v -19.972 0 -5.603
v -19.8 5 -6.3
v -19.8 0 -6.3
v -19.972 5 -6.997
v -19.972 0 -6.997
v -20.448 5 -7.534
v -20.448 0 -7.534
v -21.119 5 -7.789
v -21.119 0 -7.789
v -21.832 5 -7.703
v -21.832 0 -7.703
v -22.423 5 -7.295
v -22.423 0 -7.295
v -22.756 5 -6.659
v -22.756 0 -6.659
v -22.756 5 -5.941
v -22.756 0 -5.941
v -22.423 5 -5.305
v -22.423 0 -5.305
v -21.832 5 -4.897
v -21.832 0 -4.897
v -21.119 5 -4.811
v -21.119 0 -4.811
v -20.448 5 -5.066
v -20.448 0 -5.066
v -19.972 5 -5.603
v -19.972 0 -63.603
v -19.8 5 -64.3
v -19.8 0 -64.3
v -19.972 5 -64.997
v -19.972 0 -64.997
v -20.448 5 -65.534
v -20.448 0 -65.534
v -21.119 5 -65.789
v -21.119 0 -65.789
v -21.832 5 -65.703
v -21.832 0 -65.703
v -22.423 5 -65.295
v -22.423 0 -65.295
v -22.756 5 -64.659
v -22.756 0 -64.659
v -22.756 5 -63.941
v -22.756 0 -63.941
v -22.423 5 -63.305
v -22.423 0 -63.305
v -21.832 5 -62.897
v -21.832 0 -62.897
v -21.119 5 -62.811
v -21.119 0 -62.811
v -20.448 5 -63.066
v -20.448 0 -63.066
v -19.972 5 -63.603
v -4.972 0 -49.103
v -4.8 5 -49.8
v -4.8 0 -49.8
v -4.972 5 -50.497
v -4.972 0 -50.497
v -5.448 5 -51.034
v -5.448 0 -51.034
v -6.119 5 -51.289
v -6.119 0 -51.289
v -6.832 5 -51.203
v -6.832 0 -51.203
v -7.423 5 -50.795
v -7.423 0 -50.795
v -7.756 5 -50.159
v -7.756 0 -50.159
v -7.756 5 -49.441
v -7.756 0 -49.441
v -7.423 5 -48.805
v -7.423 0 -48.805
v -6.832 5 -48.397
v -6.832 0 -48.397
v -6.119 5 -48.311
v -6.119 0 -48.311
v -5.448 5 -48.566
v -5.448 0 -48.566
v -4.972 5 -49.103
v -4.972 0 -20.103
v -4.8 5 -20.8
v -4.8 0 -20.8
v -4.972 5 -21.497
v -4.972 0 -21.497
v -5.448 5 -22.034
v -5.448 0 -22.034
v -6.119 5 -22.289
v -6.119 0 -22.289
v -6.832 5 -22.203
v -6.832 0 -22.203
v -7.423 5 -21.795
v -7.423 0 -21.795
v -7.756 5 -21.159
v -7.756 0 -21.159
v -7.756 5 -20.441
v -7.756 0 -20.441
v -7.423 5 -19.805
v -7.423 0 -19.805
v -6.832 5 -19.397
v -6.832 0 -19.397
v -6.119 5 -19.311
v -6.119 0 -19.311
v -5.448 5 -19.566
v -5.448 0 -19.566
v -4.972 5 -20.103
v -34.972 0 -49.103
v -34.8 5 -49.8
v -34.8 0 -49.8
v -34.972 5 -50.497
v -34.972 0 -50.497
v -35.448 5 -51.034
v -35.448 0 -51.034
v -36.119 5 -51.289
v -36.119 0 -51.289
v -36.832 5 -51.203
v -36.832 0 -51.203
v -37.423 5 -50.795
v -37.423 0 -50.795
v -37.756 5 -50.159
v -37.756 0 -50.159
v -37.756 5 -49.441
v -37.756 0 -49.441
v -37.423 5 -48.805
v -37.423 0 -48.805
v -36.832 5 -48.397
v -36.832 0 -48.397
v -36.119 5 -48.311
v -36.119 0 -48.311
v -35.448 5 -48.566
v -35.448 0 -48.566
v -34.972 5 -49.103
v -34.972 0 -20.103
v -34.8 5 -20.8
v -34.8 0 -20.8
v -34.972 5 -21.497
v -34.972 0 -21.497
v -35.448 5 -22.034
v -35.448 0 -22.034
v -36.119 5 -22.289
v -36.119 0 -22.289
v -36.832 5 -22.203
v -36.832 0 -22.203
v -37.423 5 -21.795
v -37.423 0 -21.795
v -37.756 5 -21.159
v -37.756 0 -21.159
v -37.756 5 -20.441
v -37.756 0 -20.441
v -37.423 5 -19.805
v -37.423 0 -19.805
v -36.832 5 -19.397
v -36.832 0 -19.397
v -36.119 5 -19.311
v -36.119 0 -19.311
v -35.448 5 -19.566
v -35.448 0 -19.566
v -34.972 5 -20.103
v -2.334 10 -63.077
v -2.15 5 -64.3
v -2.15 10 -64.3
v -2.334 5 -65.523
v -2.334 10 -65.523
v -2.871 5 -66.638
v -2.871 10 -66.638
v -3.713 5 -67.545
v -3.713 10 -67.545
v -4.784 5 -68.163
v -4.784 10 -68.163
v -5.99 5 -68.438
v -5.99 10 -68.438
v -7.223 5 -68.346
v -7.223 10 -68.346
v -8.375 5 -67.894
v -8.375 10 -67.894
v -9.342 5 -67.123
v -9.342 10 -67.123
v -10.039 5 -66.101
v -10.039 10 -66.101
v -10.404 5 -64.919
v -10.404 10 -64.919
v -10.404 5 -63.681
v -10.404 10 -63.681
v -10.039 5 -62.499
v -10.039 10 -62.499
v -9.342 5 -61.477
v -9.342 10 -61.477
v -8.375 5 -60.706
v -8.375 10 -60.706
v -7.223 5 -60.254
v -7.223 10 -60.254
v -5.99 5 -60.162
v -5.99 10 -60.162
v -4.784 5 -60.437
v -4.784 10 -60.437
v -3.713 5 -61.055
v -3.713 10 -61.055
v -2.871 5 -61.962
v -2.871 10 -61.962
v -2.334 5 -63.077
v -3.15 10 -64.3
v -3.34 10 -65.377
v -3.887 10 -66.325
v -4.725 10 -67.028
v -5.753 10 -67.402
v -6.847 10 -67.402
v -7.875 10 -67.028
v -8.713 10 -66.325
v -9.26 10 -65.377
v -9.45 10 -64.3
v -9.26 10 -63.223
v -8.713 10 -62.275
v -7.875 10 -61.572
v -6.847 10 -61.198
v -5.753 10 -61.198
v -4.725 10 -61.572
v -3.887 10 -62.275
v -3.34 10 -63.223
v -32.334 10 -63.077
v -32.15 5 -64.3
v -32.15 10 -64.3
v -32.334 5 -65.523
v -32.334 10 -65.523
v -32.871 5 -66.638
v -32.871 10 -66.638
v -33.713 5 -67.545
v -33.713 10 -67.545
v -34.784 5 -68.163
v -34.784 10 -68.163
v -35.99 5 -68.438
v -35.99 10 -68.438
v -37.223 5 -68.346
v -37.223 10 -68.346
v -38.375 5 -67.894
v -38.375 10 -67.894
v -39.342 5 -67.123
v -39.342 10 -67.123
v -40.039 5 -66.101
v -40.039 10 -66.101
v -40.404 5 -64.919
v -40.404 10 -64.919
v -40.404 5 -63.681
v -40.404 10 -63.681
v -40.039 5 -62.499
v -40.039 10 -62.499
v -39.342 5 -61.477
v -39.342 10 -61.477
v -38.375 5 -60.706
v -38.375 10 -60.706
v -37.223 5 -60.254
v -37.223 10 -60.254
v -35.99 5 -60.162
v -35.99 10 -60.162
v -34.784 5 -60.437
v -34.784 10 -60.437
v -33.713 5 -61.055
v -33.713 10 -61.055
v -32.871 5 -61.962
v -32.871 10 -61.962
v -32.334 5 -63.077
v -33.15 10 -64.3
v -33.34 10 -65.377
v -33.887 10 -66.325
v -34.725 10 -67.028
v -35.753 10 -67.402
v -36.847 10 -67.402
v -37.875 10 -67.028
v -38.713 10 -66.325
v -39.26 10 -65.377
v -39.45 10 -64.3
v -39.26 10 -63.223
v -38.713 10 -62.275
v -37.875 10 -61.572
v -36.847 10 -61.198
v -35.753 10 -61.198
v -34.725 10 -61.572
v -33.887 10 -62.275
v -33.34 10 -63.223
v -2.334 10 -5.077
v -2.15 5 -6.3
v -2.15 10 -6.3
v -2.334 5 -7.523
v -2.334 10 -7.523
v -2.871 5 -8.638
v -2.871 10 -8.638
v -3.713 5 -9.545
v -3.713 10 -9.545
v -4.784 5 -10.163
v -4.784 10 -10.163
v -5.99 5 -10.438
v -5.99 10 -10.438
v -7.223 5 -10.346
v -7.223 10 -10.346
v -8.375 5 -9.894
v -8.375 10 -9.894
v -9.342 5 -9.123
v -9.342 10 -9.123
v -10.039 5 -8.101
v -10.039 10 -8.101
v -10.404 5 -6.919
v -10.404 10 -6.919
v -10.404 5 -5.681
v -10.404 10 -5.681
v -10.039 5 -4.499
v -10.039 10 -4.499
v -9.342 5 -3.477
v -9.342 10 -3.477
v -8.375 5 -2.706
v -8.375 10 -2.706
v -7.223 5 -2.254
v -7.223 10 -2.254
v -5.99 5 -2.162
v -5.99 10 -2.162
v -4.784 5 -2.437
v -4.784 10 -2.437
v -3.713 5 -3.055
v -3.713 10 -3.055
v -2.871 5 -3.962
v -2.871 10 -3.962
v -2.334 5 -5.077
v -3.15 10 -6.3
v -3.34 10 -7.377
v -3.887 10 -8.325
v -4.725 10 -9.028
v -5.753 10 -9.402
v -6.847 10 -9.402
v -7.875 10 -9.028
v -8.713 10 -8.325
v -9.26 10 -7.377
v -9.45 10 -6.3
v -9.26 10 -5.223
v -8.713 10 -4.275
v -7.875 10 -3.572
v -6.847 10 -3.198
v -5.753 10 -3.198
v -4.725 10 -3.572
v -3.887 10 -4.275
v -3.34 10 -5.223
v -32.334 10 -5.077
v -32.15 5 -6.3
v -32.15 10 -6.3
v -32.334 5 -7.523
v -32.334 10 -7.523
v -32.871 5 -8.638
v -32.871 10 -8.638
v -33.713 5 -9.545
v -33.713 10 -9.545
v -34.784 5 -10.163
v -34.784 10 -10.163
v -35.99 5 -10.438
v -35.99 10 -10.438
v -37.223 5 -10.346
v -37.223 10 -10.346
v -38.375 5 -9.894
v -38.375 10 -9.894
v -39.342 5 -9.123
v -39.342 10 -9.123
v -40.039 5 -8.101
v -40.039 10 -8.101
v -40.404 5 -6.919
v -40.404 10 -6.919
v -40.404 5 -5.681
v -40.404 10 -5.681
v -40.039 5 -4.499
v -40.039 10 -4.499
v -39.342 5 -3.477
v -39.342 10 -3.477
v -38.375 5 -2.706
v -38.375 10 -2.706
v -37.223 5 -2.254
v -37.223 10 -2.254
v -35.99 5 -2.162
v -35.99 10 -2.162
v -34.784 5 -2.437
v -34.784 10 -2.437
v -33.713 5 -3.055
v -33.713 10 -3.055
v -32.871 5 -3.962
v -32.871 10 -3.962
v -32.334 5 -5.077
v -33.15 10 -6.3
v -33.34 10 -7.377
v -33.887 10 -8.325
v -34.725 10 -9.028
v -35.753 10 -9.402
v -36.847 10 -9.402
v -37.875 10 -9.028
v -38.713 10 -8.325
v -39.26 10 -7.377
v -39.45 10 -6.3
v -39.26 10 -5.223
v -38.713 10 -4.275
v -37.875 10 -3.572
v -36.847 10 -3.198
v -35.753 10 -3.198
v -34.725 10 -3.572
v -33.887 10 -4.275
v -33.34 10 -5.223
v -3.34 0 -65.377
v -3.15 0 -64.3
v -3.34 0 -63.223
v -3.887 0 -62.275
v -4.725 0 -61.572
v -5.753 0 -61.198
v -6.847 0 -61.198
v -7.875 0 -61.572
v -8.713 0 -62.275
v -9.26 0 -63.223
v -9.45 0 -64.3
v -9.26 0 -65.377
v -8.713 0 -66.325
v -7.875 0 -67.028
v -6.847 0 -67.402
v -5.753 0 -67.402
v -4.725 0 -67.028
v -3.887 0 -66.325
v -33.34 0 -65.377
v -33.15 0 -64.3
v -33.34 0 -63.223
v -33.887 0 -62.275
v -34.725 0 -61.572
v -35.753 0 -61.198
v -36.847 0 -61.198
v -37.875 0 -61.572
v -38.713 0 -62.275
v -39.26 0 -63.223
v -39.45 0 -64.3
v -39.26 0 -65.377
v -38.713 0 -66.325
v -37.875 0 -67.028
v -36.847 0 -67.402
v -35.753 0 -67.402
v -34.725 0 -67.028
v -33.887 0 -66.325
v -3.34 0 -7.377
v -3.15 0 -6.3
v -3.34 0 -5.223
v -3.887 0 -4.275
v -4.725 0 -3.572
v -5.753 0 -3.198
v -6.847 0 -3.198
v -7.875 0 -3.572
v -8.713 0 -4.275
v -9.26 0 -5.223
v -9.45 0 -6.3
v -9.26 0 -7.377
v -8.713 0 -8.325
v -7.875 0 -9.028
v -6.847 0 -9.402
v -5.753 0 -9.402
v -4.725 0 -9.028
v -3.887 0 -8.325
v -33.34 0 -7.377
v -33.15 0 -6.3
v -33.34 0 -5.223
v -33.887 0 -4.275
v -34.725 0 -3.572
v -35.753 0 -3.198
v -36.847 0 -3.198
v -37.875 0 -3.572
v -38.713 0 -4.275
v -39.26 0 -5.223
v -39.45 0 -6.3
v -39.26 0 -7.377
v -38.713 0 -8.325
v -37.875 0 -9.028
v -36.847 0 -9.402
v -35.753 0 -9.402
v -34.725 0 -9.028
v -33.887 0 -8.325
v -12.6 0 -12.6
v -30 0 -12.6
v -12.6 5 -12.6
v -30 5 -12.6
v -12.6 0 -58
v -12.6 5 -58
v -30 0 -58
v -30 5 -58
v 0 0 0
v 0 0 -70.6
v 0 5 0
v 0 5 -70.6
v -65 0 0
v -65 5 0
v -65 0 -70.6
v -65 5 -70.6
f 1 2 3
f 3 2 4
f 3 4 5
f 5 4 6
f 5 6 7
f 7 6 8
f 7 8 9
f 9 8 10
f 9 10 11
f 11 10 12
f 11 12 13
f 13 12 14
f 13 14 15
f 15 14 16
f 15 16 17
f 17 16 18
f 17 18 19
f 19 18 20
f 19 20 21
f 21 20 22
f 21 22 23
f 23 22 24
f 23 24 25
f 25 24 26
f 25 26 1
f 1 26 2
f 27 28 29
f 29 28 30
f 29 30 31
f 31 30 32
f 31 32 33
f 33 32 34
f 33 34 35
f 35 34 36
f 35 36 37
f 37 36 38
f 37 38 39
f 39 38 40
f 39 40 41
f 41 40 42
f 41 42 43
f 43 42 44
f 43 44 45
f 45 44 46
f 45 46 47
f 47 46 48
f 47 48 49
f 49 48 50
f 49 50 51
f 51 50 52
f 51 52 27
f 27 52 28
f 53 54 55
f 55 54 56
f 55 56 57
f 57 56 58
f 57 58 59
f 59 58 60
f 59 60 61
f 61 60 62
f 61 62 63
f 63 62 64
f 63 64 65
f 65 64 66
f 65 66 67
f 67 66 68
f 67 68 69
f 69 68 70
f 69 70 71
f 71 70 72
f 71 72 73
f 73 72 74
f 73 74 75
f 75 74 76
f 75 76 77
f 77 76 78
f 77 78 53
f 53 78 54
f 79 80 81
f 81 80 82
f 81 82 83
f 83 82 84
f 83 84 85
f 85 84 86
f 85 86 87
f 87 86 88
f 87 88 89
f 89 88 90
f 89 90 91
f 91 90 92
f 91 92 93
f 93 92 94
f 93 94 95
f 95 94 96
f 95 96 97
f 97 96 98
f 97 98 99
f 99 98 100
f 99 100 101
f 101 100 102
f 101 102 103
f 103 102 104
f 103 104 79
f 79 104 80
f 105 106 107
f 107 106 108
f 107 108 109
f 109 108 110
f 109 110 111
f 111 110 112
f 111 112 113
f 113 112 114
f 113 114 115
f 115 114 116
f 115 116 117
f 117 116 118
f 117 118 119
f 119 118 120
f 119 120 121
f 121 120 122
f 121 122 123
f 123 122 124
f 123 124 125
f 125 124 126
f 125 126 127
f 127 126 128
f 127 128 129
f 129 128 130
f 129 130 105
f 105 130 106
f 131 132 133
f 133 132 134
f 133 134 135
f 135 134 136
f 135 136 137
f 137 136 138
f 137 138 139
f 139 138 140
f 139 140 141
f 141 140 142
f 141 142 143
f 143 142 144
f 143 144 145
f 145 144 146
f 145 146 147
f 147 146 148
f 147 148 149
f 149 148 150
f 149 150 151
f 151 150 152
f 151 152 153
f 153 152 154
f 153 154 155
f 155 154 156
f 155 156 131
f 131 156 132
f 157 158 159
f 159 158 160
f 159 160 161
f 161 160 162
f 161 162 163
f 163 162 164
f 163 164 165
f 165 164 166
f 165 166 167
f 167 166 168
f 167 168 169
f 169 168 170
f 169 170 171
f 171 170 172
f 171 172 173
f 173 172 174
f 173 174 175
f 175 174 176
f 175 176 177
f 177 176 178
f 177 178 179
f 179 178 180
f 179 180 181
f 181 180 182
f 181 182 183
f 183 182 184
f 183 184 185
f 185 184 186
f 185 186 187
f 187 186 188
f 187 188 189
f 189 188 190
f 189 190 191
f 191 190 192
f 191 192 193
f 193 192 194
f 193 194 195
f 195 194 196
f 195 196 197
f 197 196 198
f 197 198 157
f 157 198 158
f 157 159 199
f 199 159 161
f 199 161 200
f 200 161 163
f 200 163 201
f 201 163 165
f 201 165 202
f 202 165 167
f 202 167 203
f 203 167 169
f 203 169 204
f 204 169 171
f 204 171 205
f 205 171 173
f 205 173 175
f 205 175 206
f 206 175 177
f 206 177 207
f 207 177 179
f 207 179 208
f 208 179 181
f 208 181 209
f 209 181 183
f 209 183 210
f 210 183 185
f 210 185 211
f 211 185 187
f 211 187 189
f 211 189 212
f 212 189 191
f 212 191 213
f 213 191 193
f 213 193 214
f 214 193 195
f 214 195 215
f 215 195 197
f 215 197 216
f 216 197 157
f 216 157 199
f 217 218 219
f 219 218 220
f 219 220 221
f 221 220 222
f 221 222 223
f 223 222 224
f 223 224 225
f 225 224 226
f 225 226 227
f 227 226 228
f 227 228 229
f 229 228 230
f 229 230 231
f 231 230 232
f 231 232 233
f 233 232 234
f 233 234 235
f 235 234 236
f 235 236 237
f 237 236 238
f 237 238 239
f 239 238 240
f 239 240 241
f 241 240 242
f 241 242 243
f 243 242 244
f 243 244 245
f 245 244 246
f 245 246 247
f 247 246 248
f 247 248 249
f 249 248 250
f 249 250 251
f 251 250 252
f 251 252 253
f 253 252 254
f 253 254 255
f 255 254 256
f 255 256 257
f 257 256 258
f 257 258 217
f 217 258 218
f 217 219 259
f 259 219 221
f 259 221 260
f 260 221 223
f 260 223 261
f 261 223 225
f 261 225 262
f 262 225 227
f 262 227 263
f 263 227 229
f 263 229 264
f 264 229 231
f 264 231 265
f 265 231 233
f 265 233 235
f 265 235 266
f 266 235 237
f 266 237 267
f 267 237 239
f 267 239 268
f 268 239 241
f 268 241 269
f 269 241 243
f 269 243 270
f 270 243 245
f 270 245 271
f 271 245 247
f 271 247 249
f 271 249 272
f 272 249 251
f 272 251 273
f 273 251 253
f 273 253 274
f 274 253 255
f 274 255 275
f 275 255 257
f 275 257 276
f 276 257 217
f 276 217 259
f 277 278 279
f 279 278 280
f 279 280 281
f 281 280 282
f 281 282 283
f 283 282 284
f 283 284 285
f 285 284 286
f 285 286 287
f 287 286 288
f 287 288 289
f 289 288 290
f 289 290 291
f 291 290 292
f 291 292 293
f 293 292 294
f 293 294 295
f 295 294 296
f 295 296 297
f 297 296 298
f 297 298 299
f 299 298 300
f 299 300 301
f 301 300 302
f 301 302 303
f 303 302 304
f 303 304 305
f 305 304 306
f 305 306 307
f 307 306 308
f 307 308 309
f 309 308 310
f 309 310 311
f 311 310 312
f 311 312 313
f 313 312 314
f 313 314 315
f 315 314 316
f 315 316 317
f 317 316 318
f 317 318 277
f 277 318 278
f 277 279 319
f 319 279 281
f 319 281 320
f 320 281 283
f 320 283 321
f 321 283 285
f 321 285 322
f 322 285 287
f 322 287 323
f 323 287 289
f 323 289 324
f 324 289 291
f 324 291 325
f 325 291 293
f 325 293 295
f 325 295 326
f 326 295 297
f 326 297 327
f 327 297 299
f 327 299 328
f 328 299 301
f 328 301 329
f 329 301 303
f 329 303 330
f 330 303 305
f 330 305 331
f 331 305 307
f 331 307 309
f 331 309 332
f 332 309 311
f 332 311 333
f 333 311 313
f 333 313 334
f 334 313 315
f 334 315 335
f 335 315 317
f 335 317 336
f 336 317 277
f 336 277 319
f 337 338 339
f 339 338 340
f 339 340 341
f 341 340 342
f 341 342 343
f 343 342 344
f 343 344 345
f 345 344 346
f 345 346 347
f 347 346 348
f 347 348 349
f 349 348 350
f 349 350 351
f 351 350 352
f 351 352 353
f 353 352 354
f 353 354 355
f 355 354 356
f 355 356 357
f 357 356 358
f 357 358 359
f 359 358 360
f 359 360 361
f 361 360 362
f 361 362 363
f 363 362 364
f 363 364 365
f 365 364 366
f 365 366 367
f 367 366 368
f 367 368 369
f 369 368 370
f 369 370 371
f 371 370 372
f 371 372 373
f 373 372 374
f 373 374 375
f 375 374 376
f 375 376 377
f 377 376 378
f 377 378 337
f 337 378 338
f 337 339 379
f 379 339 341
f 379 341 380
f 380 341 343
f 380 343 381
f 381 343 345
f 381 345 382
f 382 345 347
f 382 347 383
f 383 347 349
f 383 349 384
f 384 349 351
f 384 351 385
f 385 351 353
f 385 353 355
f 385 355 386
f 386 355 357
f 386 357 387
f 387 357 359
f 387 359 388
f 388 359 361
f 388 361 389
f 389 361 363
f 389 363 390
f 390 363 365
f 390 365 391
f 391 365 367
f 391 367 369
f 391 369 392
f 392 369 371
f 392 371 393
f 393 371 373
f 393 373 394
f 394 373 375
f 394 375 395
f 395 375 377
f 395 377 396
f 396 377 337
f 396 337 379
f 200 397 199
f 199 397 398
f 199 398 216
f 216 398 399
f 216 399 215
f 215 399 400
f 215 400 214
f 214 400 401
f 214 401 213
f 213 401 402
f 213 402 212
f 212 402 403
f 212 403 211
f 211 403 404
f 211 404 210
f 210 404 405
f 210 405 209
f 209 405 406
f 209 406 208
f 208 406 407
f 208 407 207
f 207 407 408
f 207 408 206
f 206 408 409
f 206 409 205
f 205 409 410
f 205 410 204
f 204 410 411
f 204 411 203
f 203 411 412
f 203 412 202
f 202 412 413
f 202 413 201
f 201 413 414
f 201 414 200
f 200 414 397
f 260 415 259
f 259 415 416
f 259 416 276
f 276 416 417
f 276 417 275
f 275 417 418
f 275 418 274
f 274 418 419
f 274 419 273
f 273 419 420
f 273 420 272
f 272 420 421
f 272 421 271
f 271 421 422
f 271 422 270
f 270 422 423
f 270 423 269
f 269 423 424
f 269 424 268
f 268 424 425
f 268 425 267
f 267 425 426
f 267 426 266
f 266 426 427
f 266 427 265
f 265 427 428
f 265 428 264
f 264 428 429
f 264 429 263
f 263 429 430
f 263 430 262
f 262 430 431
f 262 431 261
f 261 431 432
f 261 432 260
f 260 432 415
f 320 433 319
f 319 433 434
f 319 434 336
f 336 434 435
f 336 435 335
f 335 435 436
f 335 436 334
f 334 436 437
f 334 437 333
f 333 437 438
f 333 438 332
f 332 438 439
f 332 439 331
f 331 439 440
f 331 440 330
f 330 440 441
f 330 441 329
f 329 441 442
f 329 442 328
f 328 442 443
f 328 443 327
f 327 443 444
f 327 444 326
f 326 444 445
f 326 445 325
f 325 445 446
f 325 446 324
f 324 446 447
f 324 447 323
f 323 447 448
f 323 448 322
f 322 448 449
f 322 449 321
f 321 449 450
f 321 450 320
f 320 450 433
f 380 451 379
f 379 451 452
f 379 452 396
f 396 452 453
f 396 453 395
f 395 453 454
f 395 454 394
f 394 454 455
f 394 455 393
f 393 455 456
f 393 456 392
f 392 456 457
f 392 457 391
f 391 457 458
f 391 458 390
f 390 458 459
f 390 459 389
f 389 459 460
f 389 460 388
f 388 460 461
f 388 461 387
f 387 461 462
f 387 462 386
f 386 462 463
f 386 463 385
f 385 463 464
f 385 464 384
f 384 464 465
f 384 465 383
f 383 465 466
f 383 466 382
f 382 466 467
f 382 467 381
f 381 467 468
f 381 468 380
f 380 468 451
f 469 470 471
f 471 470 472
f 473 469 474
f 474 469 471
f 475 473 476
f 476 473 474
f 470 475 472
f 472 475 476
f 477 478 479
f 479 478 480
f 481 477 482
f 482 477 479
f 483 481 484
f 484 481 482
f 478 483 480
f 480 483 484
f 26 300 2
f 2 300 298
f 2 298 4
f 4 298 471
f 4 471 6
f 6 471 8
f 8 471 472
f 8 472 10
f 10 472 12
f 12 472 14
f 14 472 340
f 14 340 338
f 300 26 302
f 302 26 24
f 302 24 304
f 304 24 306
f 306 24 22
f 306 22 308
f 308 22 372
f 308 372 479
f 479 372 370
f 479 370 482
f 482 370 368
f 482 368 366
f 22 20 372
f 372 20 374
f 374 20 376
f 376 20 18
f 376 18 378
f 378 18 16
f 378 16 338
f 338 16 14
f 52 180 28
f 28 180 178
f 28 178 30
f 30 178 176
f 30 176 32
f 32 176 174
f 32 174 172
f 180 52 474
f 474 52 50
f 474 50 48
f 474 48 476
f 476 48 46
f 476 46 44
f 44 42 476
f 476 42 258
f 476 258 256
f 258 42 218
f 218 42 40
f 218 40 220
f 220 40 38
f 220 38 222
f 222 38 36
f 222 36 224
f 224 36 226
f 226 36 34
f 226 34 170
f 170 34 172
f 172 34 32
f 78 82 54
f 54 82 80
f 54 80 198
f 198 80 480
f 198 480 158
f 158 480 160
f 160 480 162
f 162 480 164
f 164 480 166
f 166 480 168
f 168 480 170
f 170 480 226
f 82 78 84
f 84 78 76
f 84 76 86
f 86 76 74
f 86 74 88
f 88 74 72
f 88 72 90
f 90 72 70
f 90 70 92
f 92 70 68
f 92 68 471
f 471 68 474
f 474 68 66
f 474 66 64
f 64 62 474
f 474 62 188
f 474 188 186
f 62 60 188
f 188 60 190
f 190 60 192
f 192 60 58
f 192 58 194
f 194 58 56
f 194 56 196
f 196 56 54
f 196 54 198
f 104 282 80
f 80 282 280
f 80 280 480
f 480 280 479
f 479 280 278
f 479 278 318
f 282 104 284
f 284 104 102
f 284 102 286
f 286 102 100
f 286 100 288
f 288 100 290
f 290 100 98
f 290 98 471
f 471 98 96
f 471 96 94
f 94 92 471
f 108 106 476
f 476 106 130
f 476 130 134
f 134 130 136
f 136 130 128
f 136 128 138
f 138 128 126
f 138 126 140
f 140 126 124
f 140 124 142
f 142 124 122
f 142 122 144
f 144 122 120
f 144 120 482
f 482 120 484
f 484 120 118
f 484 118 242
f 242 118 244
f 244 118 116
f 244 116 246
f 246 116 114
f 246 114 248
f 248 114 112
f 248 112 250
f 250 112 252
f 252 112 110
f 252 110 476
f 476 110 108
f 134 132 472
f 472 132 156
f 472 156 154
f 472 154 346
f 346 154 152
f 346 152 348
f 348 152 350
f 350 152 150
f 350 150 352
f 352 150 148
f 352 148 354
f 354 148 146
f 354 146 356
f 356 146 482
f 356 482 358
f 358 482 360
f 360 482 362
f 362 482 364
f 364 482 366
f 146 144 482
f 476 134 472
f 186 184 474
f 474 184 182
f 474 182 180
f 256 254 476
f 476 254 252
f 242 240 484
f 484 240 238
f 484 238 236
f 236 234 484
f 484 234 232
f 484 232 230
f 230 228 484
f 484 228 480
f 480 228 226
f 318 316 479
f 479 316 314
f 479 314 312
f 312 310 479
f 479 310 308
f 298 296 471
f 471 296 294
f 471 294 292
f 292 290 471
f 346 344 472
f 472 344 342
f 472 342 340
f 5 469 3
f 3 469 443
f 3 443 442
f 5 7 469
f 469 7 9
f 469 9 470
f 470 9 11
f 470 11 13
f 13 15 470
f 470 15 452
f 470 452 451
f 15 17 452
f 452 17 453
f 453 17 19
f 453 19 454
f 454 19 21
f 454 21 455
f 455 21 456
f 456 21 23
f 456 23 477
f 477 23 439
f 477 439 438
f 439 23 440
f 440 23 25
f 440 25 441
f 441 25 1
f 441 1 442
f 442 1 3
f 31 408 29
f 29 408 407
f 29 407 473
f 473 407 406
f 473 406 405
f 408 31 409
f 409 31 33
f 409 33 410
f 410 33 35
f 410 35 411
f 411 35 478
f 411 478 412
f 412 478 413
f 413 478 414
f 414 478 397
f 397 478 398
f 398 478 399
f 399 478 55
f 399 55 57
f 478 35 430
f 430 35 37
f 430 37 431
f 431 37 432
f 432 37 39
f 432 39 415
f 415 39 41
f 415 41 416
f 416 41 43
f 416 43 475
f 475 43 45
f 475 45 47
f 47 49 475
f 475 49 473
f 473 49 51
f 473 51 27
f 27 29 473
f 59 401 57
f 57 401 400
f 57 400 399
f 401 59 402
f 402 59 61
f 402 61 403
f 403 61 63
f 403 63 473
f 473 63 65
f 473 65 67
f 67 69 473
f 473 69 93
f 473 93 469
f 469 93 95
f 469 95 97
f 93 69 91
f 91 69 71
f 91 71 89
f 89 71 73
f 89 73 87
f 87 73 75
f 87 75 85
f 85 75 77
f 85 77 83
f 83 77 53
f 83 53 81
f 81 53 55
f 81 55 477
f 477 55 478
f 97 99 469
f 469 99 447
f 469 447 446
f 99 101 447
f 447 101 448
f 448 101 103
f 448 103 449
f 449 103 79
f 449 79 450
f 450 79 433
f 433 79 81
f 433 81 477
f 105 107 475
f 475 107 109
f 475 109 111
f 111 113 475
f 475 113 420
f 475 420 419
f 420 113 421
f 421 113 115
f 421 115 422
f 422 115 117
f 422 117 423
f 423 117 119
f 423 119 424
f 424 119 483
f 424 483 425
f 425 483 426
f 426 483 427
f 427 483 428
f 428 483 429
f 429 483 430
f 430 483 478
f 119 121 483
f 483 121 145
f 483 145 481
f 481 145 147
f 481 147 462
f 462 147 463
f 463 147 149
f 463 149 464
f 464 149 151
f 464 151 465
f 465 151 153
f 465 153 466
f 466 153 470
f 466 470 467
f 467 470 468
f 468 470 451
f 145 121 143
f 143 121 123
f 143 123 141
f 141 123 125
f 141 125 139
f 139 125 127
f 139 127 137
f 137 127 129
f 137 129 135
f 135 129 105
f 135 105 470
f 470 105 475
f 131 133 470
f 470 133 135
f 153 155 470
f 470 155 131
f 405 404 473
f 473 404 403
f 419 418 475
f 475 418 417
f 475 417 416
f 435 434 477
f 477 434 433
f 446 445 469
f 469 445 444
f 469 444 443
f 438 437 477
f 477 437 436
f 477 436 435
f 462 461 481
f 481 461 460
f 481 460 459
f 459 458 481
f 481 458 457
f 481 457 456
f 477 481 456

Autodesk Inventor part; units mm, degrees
ref_plane "YZ Plane" through (0, 0, 0) normal (1, 0, 0) x (0, 1, 0)
ref_plane "XZ Plane" through (0, 0, 0) normal (0, 1, 0) x (-1, 0, 0)
ref_plane "XY Plane" through (0, 0, 0) normal (0, 0, 1) x (1, 0, 0)
sketch "Sketch1" plane through (0, 0, 0) normal (0, 1, 0) x (-1, 0, 0)
  line L0 (0, 0) -> (65, 0)
  line L1 (65, 0) -> (65, -70.6)
  line L2 (65, -70.6) -> (0, -70.6)
  line L3 (0, -70.6) -> (0, 0)
  line L4 (30, -12.6) -> (12.6, -12.6)
  line L5 (12.6, -12.6) -> (12.6, -58)
  line L6 (12.6, -58) -> (30, -58)
  line L7 (30, -58) -> (30, -12.6)
  dimension "d0" = 70.6
  dimension "d1" = 65
  dimension "d2" = 45.4
  dimension "d3" = 17.4
  dimension "d4" = 12.6
  dimension "d5" = 12.6
extrude "Extrusion1" add sketch "Sketch1" along normal blind 5
sketch "Sketch2" plane through (0, 5, 0) normal (0, 1, 0) x (1, 0, 0)
  line L0 (-12.6, 58) -> (-12.6, 12.6) construction
  line L1 (-12.6, 12.6) -> (0, 12.6) construction
  line L2 (0, 0) -> (0, 70.6) construction
  line L3 (-6.3, 6.3) -> (-6.3, 12.6) construction
  line L4 (-12.6, 12.6) -> (-30, 12.6) construction
  line L5 (-12.6, 12.6) -> (-12.6, 0) construction
  line L6 (-65, 0) -> (0, 0) construction
  line L7 (-6.3, 6.3) -> (-12.6, 6.3) construction
  line L8 (-6.3, 6.3) -> (-36.3, 6.3) construction
  line L9 (-36.3, 6.3) -> (-36.3, 64.3) construction
  line L10 (-36.3, 64.3) -> (-6.3, 64.3) construction
  line L11 (-6.3, 64.3) -> (-6.3, 6.3) construction
  line L12 (-6.3, 64.3) -> (-6.3, 70.6) construction
  line L13 (0, 70.6) -> (-65, 70.6) construction
  line L14 (-36.3, 35.3) -> (-30, 35.3) construction
  line L15 (-30, 12.6) -> (-30, 58) construction
hole "Hole1" at (-36.3, 5, -6.3) at (-6.3, 5, -6.3) at (-36.3, 5, -64.3) at (-6.3, 5, -64.3) direction (0, -1, 0) diameter 6.3 depth 5
sketch "Sketch3" plane through (0, 5, 0) normal (0, 1, 0) x (1, 0, 0)
  circle A0 centre (-6.3, 6.3) radius 3.15 projected
  circle A1 centre (-6.3, 6.3) radius 4.15
  circle A2 centre (-36.3, 6.3) radius 3.15 projected
  circle A3 centre (-36.3, 6.3) radius 4.15
  circle A4 centre (-36.3, 64.3) radius 3.15 projected
  circle A5 centre (-36.3, 64.3) radius 4.15
  circle A6 centre (-6.3, 64.3) radius 3.15 projected
  circle A7 centre (-6.3, 64.3) radius 4.15
  point P0 (0, 0)
  dimension "d15" = 1
extrude "Extrusion2" add sketch "Sketch3" along normal blind 5
sketch "Sketch4" plane through (0, 5, 0) normal (0, 1, 0) x (1, 0, 0)
  circle A0 centre (-36.3, 6.3) radius 4.15 construction
  circle A1 centre (-36.3, 64.3) radius 3.15 construction
  line L0 (-36.3, 6.3) -> (-36.3, 64.3) construction
  line L1 (-36.3, 64.3) -> (-6.3, 64.3) construction
  circle A2 centre (-6.3, 6.3) radius 3.15 construction
  line L2 (-36.3, 6.3) -> (-6.3, 6.3) construction
  circle A3 centre (-6.3, 64.3) radius 3.15 construction
  line L3 (-6.3, 6.3) -> (-6.3, 64.3) construction
  line L4 (-36.3, 35.3) -> (-6.3, 35.3) construction
  line L5 (-36.3, 20.8) -> (-6.3, 20.8) construction
  line L6 (-36.3, 49.8) -> (-6.3, 49.8) construction
  point P0 (0, 0)
  point P1 (-21.3, 64.3)
  point P2 (-21.3, 6.3)
  dimension "d18" = 14.5
hole "Hole2" at (-36.3, 5, -20.8) at (-36.3, 5, -49.8) at (-6.3, 5, -20.8) at (-6.3, 5, -49.8) at (-21.3, 5, -64.3) at (-21.3, 5, -6.3) direction (0, -1, 0) diameter 3 depth 5
equation "\"d0\" = carriage_mount_width"
equation "\"d1\" = carriage_mount_length"
equation "\"d2\" = carriage_mount_cutout_length"
equation "\"d3\" = carriage_mount_cutout_width"
equation "\"d4\" = 0.5 * carriage_mount_width - 0.5 * carriage_mount_cutout_length"
equation "\"d5\" = 0.5 * carriage_mount_width - 0.5 * carriage_mount_cutout_length"
equation "\"d6\" = carriage_mount_thickness"
equation "\"d8\" = rod_diameter + rod_tolerance"
equation "\"d15\" = carriage_mount_wall_thickness"
equation "\"d16\" = carriage_mount_thickness"
equation "\"d18\" = 0.125 * carriage_mount_cutout_length + 0.125 * carriage_mount_width"
equation "\"d19\" = screw_diameter"
equation "\"carriage_mount_length\" = 65"
equation "\"carriage_mount_width\" = 70.6"
equation "\"carriage_mount_cutout_length\" = 45.4"
equation "\"carriage_mount_cutout_width\" = 17.4"
equation "\"screw_diameter\" = 3"
equation "\"rod_diameter\" = 6"
equation "\"rod_tolerance\" = 0.3"
equation "\"carriage_mount_wall_thickness\" = 1"
equation "\"carriage_mount_thickness\" = 5"
properties part number "carriage_mount"
